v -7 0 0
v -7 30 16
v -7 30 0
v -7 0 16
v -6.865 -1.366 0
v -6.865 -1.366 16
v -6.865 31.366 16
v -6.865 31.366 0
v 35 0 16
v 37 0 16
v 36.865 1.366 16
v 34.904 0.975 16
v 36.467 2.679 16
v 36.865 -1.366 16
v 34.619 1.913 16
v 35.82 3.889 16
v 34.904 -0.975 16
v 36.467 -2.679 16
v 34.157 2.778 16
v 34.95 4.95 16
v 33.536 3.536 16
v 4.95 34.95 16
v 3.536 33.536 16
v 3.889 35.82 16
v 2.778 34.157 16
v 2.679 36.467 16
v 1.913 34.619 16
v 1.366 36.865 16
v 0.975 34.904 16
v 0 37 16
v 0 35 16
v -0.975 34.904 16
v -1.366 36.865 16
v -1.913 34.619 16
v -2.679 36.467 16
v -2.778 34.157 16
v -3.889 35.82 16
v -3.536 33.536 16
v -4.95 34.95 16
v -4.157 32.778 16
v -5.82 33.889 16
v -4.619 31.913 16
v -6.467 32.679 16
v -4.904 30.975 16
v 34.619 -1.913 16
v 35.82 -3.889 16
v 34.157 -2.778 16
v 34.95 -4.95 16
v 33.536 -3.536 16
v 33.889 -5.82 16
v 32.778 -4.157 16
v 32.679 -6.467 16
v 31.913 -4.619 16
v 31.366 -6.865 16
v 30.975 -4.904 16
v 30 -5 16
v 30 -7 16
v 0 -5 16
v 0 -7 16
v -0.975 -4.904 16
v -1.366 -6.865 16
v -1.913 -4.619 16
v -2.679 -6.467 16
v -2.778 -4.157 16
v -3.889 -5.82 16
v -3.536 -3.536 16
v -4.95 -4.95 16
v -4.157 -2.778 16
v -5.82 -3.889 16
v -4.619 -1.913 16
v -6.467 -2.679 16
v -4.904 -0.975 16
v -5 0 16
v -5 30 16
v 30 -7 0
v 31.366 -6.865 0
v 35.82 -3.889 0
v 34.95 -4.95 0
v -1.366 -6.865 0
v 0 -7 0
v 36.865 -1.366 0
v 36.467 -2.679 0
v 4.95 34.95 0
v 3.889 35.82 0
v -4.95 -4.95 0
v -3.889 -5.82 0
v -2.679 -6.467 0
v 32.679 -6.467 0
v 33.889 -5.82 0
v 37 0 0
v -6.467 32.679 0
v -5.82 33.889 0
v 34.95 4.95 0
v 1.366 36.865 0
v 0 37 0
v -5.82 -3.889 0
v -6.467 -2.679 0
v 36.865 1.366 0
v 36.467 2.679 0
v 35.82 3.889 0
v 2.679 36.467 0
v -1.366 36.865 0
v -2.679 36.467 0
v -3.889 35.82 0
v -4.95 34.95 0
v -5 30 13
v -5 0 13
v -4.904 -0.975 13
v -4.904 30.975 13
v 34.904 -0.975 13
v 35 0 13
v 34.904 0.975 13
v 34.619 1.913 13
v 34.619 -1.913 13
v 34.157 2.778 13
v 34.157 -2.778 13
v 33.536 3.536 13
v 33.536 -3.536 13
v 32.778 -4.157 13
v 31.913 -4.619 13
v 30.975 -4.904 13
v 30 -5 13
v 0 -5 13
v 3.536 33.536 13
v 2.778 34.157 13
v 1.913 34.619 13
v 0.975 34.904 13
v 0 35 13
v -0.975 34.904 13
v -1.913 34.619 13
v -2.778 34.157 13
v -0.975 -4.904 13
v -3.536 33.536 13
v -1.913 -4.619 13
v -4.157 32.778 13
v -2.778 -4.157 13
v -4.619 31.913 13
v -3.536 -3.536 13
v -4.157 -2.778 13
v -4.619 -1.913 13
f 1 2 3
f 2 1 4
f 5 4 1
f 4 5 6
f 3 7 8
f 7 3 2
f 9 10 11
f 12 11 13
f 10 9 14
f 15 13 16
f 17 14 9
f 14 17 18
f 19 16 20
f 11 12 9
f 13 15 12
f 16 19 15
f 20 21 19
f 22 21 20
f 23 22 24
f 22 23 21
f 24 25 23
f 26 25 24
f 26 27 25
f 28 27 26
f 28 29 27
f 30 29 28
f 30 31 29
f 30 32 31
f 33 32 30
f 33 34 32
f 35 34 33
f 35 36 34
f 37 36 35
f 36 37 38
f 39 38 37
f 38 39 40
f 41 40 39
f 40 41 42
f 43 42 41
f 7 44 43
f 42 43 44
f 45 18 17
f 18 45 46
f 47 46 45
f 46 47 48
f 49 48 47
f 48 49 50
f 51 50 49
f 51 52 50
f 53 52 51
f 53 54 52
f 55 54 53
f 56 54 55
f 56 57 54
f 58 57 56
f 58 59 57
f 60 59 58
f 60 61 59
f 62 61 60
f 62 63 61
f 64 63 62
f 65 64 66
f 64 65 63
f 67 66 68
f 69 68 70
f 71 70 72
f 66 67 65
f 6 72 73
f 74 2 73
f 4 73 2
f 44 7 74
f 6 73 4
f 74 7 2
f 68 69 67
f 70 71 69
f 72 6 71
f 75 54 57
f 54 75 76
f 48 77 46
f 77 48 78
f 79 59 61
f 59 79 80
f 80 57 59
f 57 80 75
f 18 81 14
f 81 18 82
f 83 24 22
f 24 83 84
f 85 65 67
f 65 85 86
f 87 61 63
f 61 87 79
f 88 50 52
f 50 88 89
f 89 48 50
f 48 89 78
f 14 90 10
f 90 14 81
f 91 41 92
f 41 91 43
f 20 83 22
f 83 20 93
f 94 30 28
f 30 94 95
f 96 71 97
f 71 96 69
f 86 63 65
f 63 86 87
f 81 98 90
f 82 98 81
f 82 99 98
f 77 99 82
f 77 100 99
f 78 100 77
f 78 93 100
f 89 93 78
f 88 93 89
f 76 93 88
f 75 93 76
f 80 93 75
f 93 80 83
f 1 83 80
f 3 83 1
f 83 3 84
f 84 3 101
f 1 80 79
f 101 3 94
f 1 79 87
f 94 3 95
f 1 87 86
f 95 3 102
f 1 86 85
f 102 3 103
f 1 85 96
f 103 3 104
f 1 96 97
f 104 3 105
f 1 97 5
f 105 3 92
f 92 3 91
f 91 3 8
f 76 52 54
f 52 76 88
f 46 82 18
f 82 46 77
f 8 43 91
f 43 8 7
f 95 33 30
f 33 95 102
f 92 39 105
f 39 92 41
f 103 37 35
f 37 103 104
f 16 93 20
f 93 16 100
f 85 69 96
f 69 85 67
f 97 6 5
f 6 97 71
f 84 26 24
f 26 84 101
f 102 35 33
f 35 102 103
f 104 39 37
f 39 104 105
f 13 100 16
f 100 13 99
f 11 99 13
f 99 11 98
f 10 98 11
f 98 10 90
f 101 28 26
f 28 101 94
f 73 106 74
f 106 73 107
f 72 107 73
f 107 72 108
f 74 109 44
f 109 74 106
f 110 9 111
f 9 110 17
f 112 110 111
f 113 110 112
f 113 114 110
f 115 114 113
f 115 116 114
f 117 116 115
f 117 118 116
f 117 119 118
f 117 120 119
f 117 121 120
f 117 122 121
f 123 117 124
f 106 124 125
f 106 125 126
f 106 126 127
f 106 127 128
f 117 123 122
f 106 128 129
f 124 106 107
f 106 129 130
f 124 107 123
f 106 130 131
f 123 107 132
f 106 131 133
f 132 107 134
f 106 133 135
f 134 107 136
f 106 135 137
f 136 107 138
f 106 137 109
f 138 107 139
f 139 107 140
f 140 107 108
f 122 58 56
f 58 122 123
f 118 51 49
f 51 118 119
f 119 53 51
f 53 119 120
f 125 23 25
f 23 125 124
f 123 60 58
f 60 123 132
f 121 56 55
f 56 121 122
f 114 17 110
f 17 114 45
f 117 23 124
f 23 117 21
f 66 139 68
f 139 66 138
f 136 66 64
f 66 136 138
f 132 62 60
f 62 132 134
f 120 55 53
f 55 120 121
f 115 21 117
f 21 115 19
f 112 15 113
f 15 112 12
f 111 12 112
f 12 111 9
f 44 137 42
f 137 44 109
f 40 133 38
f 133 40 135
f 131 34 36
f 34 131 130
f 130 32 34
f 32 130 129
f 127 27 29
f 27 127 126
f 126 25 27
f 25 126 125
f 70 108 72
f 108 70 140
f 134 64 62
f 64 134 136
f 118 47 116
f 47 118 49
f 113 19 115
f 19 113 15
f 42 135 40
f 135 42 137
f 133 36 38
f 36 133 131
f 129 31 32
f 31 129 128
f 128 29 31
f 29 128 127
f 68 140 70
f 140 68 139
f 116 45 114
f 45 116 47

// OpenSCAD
/**
 * Martin Egli
 * Tisch Fuss
 */

module fuss1(ra1 = 5, hi1 = 13, loc_res = 32) {
    ra2 = ra1 + 2;
    hi2 = hi1 + 3;
    difference() {
        hull() {
            translate([0, 0, 0])
            cylinder(r = ra2, h = hi2, $fn = loc_res);
            translate([30, 0, 0])
            cylinder(r = ra2, h = hi2, $fn = loc_res);
            translate([0, 30, 0])
            cylinder(r = ra2, h = hi2, $fn = loc_res);
        }
        translate([0, 0, hi1])
        hull() {
            translate([0, 0, 0])
            cylinder(r = ra1, h = hi1, $fn = loc_res);
            translate([30, 0, 0])
            cylinder(r = ra1, h = hi1, $fn = loc_res);
            translate([0, 30, 0])
            cylinder(r = ra1, h = hi1, $fn = loc_res);
        }
    }
}
fuss1();
